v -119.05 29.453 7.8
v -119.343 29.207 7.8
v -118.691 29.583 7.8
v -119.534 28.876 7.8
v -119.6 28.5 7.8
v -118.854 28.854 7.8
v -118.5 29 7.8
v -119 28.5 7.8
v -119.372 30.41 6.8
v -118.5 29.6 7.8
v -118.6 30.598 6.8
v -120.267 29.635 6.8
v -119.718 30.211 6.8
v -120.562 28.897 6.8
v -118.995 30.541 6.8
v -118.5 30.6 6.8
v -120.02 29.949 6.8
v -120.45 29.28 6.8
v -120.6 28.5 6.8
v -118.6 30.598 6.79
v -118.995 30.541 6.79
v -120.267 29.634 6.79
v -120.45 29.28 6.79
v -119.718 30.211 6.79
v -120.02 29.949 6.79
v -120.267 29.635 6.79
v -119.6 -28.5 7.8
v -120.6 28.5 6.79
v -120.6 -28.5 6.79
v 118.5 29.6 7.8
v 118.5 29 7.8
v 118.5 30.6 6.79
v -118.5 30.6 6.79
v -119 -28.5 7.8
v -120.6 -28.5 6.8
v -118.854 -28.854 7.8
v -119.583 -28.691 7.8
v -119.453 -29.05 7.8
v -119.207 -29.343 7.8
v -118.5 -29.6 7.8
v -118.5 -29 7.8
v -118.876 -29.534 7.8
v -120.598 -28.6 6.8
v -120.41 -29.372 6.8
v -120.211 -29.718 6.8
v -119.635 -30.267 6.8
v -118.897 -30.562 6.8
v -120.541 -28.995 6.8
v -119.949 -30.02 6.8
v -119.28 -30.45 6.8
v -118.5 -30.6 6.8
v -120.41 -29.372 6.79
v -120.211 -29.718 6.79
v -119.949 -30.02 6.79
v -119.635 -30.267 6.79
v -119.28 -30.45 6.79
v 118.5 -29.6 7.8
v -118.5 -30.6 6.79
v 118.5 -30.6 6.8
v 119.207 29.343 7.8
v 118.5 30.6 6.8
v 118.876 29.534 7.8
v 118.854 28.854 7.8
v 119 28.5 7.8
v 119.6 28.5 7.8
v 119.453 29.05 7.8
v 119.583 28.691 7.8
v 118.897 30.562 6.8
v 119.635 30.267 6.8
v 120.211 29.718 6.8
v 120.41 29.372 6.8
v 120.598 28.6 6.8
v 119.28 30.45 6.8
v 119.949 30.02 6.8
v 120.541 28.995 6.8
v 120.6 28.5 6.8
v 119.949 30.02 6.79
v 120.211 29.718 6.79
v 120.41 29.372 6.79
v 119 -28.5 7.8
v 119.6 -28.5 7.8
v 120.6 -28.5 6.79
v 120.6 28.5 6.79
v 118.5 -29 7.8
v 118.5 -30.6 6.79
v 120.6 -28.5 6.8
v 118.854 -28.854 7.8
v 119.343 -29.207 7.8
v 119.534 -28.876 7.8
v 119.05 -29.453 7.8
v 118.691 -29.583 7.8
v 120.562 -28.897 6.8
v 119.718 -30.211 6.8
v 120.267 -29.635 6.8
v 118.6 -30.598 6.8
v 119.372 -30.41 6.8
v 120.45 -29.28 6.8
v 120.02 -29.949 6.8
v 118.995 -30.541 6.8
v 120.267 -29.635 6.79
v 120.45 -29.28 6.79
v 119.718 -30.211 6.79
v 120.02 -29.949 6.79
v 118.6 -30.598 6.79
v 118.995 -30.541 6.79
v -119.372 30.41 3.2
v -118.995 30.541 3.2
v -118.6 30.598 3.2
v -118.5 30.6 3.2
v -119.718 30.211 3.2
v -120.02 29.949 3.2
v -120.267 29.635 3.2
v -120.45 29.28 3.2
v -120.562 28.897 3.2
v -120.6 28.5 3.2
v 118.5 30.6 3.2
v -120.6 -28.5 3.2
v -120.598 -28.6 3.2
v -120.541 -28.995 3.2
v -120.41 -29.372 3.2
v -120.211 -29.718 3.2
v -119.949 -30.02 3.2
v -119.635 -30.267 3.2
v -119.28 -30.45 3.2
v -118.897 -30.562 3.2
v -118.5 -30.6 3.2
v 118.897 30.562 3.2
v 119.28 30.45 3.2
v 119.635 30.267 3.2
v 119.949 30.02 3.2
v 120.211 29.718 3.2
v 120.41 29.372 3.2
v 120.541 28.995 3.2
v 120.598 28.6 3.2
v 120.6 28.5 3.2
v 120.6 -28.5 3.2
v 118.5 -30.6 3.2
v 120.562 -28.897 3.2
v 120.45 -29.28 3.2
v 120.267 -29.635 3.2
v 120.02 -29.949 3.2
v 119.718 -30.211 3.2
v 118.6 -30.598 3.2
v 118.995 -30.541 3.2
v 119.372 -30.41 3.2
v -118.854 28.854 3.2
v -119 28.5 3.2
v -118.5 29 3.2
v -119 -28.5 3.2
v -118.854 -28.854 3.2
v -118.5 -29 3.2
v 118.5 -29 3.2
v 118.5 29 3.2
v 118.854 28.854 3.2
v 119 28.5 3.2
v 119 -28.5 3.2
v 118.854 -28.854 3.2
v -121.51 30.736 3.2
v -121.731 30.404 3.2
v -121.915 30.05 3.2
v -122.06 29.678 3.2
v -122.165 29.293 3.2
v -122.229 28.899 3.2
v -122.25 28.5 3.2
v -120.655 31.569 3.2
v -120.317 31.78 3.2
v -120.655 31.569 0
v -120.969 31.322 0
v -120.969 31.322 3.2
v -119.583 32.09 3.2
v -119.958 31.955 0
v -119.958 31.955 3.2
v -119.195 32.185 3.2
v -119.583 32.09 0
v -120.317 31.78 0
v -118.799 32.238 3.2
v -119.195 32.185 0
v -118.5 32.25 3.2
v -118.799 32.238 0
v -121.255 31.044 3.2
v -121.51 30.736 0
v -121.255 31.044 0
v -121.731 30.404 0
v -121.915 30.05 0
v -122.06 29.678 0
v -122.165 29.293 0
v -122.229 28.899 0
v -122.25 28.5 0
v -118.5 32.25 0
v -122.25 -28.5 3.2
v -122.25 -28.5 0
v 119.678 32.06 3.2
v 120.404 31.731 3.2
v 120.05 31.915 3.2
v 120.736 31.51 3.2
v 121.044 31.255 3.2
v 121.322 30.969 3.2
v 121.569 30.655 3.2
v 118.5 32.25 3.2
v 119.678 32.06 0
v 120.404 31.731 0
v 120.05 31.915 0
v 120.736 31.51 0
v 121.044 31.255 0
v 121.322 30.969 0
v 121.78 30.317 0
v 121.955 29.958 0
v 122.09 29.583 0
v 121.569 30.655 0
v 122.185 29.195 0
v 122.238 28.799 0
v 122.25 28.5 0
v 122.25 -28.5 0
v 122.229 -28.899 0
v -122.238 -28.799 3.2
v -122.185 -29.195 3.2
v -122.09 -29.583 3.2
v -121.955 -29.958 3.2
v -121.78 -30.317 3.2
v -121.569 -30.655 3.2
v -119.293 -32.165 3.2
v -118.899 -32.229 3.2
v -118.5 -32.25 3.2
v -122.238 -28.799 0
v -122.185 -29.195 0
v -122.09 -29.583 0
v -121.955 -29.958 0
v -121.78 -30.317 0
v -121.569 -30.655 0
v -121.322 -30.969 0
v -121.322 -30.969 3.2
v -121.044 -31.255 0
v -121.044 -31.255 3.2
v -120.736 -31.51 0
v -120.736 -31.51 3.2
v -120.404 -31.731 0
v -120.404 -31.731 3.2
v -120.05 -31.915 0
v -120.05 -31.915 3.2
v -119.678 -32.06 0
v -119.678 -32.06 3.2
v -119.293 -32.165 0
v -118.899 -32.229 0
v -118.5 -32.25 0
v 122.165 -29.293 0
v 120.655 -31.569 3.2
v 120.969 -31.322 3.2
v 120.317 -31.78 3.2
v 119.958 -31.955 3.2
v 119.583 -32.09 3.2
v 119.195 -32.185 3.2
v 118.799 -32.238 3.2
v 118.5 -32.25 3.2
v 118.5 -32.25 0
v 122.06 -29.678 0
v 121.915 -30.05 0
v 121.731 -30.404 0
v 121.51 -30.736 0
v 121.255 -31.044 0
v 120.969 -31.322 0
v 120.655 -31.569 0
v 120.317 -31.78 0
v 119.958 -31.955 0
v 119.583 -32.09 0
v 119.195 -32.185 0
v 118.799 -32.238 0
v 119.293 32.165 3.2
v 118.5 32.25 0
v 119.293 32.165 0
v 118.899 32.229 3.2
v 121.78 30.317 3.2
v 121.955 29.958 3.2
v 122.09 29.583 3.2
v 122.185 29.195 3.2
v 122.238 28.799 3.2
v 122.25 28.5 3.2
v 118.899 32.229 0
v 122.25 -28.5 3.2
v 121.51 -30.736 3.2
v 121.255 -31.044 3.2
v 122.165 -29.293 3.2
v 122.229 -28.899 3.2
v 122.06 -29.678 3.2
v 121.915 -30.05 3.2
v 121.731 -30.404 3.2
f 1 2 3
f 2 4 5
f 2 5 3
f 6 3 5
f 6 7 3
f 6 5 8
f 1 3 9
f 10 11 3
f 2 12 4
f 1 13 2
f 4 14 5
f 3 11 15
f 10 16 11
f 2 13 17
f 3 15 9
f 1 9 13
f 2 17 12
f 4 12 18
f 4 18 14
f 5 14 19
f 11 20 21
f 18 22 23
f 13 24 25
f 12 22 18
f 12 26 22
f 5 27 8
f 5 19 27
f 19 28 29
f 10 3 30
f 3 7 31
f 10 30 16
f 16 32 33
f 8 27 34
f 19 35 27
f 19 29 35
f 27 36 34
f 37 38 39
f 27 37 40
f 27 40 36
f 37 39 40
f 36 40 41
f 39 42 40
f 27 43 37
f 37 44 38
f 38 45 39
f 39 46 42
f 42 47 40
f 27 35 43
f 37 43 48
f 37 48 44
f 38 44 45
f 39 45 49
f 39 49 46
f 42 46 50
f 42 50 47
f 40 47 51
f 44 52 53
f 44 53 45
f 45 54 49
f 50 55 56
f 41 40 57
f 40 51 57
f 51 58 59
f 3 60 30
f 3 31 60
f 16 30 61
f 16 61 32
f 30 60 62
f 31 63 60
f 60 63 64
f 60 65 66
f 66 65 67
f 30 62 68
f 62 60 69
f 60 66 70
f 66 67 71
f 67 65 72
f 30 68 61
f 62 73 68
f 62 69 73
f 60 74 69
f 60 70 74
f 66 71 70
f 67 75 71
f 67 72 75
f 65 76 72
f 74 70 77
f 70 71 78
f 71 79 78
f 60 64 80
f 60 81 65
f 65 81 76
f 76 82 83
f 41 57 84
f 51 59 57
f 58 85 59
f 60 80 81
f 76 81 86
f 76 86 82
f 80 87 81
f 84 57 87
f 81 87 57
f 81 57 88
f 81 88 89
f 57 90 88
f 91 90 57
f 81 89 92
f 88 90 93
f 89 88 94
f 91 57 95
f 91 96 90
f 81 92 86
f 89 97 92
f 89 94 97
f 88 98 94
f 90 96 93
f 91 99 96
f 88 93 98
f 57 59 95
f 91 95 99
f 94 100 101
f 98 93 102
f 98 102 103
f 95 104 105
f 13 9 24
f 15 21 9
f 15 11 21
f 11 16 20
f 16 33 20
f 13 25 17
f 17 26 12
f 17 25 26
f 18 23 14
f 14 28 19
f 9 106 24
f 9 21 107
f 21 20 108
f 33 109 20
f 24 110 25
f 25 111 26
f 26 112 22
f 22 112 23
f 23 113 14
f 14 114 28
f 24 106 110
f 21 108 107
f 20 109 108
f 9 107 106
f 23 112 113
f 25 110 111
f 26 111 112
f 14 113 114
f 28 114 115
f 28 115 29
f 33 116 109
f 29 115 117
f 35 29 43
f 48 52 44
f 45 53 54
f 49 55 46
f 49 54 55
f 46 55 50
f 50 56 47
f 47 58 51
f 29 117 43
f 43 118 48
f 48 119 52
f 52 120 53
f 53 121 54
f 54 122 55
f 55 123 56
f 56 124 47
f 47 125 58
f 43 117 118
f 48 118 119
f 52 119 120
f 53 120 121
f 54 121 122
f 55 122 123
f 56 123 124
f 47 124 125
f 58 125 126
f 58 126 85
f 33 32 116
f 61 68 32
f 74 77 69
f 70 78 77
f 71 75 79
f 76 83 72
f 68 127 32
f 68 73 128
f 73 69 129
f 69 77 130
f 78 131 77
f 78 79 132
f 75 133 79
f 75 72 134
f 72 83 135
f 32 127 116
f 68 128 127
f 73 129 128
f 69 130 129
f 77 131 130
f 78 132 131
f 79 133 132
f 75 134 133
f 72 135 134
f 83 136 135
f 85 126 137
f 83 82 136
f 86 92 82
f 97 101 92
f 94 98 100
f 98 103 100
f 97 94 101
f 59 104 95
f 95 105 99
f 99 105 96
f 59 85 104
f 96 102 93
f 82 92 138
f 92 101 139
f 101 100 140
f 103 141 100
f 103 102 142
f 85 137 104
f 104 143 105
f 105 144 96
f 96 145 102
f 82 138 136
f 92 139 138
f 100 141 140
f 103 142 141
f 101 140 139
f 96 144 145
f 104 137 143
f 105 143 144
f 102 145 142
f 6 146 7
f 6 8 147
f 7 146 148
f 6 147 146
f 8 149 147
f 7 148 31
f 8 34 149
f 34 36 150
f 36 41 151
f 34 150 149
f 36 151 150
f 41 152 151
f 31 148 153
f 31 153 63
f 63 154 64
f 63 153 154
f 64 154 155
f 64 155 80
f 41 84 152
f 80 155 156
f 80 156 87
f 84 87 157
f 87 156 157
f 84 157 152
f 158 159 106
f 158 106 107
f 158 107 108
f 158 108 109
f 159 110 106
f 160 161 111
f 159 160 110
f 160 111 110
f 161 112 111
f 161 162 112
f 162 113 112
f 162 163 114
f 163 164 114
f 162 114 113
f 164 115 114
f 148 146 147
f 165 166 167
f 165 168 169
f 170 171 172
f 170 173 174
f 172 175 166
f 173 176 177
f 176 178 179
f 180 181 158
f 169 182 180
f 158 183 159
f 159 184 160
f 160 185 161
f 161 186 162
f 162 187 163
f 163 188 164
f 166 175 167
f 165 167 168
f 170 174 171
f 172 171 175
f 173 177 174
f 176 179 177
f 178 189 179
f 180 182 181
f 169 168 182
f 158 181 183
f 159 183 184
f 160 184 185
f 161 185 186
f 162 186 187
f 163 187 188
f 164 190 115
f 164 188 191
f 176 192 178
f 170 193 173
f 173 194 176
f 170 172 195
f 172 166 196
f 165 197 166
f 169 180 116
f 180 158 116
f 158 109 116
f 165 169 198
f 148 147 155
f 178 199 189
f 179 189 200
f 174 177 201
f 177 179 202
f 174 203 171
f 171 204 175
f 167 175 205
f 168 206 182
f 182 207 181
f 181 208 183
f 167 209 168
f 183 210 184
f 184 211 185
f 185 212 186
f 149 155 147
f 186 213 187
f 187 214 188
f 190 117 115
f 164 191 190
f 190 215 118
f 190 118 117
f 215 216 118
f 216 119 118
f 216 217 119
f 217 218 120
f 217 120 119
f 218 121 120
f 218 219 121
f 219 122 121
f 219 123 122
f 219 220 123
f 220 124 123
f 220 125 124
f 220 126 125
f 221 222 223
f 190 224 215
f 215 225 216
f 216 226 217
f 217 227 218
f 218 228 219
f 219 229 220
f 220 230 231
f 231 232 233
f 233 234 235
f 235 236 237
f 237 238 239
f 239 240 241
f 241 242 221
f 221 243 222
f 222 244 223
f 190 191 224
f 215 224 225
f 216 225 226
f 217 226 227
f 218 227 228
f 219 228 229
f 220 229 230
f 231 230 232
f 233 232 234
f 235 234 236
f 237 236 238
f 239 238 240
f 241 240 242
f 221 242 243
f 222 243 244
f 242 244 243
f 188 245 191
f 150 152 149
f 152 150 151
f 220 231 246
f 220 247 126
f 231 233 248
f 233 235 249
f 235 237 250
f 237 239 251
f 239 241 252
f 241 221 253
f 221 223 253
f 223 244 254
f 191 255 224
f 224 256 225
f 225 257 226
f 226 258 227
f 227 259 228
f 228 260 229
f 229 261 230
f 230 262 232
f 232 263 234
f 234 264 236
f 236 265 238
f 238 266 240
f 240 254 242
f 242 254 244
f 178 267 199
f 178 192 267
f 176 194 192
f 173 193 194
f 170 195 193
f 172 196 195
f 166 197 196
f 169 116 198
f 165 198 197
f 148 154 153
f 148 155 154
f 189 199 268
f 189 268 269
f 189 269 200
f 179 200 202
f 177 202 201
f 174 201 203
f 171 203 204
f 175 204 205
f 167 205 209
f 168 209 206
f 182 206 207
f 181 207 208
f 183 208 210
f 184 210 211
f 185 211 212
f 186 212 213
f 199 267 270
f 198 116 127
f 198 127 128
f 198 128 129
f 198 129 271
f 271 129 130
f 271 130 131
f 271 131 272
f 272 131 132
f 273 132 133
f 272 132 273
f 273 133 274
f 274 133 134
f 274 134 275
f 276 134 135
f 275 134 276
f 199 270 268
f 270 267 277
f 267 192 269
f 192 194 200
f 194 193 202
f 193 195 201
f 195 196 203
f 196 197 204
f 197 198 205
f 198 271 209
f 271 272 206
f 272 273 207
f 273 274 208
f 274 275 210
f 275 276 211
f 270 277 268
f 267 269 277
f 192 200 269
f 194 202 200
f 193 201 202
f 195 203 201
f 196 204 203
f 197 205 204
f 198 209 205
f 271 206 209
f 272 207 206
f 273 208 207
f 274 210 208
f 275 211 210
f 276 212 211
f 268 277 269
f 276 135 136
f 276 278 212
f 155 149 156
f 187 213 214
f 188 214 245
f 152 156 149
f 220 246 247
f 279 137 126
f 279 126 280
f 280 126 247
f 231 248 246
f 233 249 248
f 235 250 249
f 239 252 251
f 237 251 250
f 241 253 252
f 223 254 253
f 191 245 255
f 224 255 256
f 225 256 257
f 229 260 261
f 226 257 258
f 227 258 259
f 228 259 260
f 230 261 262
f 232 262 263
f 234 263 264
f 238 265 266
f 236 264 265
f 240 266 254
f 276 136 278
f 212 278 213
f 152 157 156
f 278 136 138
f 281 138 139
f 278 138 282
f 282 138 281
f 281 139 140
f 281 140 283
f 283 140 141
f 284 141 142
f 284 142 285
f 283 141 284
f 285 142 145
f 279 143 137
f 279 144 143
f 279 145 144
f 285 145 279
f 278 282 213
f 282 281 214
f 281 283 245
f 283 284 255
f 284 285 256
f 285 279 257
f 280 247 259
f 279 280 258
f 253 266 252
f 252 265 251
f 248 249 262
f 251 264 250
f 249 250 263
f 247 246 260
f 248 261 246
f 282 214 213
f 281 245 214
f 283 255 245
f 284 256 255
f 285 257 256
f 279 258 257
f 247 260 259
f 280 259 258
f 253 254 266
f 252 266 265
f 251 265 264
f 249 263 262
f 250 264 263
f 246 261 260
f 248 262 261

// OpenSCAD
// Variant b, lid-only print layout (visible face down on the bed, skirt up, support-free).
// The trailing assignments override the defaults from the include.
include <photo_box_003.scad>
variant = "b";
part = "lid";
